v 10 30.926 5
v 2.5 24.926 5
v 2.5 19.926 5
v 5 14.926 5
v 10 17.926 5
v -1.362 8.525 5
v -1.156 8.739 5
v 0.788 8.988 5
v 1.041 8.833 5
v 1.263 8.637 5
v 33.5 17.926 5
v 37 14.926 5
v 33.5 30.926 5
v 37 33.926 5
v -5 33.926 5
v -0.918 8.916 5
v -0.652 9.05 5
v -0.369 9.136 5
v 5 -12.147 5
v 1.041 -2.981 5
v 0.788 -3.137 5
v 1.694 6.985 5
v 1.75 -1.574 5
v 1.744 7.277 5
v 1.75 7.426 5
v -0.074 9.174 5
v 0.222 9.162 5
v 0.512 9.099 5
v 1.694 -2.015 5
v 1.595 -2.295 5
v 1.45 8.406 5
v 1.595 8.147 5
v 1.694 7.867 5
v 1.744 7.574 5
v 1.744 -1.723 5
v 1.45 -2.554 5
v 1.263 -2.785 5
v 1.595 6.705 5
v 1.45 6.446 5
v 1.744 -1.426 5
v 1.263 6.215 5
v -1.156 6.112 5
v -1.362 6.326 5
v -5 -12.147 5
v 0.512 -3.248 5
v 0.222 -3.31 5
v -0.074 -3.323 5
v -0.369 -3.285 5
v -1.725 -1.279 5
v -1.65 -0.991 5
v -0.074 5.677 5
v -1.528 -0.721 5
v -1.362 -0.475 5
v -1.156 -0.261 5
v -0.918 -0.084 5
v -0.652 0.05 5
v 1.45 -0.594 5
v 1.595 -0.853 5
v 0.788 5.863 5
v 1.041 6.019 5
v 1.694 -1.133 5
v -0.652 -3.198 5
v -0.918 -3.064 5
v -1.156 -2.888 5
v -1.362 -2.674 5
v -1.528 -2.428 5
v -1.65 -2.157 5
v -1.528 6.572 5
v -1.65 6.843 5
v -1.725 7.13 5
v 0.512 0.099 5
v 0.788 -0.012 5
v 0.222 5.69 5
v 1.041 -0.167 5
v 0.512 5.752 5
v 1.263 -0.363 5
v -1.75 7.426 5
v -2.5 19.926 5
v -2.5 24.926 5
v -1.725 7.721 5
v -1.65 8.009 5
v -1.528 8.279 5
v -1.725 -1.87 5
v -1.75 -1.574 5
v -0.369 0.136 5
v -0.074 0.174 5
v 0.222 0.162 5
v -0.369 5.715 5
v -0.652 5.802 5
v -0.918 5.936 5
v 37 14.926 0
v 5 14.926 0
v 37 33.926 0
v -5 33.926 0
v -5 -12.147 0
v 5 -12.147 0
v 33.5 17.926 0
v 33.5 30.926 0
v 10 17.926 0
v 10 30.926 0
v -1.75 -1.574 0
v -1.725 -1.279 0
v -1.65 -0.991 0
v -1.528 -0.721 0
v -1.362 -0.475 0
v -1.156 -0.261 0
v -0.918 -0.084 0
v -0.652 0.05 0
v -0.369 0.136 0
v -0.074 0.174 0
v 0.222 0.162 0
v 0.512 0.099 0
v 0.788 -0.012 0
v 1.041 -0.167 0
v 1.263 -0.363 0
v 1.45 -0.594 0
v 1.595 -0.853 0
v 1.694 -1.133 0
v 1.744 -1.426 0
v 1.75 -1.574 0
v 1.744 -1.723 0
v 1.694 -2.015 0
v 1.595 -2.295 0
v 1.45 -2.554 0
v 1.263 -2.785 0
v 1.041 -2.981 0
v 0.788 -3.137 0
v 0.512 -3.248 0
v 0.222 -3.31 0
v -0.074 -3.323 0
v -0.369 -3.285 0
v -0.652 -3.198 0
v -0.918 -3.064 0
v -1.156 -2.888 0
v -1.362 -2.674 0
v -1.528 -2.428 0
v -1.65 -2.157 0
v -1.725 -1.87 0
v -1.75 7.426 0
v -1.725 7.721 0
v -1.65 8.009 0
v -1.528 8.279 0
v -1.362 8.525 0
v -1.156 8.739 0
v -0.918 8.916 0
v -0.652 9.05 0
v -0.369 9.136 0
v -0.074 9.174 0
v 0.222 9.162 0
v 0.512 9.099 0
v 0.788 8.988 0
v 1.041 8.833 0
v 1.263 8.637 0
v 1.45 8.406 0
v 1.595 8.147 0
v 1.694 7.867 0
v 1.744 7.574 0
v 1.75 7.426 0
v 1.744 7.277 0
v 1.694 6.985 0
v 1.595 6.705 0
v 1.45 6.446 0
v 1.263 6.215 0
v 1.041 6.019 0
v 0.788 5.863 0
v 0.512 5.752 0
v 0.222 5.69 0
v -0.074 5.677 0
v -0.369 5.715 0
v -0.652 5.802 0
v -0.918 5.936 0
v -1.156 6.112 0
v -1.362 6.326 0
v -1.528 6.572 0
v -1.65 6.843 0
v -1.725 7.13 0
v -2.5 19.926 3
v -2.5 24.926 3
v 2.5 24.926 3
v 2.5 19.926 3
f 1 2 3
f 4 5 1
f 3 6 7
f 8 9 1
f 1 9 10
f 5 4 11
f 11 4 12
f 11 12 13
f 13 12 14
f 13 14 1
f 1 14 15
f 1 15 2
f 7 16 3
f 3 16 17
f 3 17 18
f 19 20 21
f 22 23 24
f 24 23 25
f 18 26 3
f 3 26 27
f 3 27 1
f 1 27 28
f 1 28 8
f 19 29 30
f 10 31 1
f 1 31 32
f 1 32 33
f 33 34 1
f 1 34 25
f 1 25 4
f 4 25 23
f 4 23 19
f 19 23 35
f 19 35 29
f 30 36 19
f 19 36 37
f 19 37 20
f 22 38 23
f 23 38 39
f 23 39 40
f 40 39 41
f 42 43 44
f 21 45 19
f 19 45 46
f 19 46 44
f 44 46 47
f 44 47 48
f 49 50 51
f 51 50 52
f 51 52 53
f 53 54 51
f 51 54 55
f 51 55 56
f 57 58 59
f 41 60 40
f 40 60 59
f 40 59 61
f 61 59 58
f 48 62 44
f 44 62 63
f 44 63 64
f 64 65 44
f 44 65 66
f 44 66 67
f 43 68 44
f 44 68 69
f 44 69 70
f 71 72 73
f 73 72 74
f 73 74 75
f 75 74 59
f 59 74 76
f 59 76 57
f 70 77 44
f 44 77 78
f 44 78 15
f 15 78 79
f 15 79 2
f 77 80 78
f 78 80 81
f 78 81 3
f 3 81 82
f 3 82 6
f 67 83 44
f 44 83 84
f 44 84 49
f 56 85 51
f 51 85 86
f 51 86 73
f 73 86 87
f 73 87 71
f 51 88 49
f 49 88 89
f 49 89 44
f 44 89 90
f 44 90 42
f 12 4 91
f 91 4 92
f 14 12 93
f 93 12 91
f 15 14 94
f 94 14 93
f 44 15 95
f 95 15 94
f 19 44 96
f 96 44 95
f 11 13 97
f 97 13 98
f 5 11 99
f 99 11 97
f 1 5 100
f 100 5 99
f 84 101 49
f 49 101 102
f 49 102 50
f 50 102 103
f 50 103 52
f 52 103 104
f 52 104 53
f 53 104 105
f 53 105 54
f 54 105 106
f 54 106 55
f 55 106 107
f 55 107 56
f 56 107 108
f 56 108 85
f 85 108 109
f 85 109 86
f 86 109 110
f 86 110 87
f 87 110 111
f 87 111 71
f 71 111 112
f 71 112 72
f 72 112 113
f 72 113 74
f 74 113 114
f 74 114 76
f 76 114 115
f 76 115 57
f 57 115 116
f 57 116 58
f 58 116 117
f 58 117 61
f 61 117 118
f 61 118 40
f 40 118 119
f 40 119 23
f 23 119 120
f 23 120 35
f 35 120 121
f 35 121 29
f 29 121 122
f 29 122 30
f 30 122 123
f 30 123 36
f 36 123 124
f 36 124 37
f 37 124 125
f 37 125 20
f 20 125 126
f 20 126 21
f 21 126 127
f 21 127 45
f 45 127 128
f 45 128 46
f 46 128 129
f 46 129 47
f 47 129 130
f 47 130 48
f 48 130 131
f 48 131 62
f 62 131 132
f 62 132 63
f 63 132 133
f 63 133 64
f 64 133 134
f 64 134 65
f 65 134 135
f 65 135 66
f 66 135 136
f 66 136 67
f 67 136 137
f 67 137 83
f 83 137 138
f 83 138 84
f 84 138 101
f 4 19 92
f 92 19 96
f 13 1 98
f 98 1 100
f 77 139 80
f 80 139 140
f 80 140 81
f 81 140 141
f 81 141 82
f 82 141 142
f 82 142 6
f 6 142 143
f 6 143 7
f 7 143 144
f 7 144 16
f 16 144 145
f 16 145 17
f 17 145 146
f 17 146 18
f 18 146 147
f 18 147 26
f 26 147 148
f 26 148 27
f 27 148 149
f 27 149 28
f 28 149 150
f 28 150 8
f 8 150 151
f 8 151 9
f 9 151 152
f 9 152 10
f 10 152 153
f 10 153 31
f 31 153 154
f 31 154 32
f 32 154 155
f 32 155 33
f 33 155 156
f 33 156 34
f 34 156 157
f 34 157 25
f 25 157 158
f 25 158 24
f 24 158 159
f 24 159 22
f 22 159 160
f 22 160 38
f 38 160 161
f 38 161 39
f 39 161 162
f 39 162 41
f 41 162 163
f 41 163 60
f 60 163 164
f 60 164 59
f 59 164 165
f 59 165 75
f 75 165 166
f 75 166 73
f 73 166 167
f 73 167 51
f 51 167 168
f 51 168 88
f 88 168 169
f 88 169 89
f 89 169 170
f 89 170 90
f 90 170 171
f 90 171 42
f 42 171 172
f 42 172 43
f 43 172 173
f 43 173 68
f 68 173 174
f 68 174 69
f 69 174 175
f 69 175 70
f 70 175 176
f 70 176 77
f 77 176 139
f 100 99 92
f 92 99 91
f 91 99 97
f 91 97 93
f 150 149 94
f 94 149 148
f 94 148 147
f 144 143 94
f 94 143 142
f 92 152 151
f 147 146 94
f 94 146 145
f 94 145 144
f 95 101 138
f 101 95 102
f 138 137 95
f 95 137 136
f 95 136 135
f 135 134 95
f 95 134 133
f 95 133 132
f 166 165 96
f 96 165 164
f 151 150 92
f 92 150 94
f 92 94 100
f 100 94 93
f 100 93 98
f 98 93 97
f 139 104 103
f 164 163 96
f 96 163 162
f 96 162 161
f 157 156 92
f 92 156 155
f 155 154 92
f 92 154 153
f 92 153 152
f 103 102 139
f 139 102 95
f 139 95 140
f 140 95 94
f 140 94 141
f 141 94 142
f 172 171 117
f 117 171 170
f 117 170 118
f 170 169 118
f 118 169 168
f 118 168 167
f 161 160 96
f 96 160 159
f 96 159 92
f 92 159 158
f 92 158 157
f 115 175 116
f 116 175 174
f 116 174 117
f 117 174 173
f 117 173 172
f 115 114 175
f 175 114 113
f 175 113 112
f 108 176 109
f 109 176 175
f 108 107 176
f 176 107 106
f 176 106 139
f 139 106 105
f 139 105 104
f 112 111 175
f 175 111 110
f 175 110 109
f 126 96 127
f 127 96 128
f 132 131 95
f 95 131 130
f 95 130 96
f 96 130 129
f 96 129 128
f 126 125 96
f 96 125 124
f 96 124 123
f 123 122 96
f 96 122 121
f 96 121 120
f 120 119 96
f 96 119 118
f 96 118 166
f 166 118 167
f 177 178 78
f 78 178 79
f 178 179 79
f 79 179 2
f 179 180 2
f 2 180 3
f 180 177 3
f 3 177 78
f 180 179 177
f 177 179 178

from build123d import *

# Parameters (mm, degrees)
SKIZZE1_W                       = 10
SKIZZE1_H                       = 46.07297751
SKIZZE1_R                       = 1.75
SKIZZE1_W_2                     = 3.5
SKIZZE1_H_2                     = 13
AUFSATZ_LINEAR_AUSTRAGEN1_DEPTH = 5
SKIZZE2_W                       = 5
SKIZZE2_H                       = 5
SCHNITT_LINEAR_AUSTRAGEN2_DEPTH = 2


with BuildPart() as part:
    # Skizze1 → Aufsatz-Linear austragen1 (new body)
    # profile 1 of 5: a face of its own
    with BuildSketch(Plane.XY):
        with Locations((0, 10.889252833)):
            Rectangle(SKIZZE1_W, SKIZZE1_H)
        with Locations((0, -1.574258412)):
            Circle(SKIZZE1_R, mode=Mode.SUBTRACT)
        with Locations((0, 7.425741588)):
            Circle(SKIZZE1_R, mode=Mode.SUBTRACT)
    # profile 2 of 5: a face of its own
    with BuildSketch(Plane.XY):
        Polygon((10, 30.925741588), (5, 30.925741588), (5, 30.675741588), (5, 18.175741588), (5, 17.925741588), (10, 17.925741588), align=None)
    # profile 3 of 5: a face of its own
    with BuildSketch(Plane.XY):
        Polygon((33.5, 17.925741588), (10, 17.925741588), (5, 17.925741588), (5, 14.925741588), (37, 14.925741588), (37, 17.925741588), align=None)
    # profile 4 of 5: a face of its own
    with BuildSketch(Plane.XY):
        Polygon((37, 33.925741588), (5, 33.925741588), (5, 30.925741588), (10, 30.925741588), (33.5, 30.925741588), (37, 30.925741588), align=None)
    # profile 5 of 5: a face of its own
    with BuildSketch(Plane.XY):
        with Locations((35.25, 24.425741588)):
            Rectangle(SKIZZE1_W_2, SKIZZE1_H_2)
    extrude(amount=AUFSATZ_LINEAR_AUSTRAGEN1_DEPTH)

    # Skizze2 → Schnitt-Linear austragen2 (cut)
    with BuildSketch(Plane(origin=(0, 0, 5), x_dir=(-1, 0, 0), z_dir=(0, 0, -1))):
        with Locations((0, 22.425741588)):
            Rectangle(SKIZZE2_W, SKIZZE2_H)
    extrude(amount=SCHNITT_LINEAR_AUSTRAGEN2_DEPTH, mode=Mode.SUBTRACT)


solid = part.part
